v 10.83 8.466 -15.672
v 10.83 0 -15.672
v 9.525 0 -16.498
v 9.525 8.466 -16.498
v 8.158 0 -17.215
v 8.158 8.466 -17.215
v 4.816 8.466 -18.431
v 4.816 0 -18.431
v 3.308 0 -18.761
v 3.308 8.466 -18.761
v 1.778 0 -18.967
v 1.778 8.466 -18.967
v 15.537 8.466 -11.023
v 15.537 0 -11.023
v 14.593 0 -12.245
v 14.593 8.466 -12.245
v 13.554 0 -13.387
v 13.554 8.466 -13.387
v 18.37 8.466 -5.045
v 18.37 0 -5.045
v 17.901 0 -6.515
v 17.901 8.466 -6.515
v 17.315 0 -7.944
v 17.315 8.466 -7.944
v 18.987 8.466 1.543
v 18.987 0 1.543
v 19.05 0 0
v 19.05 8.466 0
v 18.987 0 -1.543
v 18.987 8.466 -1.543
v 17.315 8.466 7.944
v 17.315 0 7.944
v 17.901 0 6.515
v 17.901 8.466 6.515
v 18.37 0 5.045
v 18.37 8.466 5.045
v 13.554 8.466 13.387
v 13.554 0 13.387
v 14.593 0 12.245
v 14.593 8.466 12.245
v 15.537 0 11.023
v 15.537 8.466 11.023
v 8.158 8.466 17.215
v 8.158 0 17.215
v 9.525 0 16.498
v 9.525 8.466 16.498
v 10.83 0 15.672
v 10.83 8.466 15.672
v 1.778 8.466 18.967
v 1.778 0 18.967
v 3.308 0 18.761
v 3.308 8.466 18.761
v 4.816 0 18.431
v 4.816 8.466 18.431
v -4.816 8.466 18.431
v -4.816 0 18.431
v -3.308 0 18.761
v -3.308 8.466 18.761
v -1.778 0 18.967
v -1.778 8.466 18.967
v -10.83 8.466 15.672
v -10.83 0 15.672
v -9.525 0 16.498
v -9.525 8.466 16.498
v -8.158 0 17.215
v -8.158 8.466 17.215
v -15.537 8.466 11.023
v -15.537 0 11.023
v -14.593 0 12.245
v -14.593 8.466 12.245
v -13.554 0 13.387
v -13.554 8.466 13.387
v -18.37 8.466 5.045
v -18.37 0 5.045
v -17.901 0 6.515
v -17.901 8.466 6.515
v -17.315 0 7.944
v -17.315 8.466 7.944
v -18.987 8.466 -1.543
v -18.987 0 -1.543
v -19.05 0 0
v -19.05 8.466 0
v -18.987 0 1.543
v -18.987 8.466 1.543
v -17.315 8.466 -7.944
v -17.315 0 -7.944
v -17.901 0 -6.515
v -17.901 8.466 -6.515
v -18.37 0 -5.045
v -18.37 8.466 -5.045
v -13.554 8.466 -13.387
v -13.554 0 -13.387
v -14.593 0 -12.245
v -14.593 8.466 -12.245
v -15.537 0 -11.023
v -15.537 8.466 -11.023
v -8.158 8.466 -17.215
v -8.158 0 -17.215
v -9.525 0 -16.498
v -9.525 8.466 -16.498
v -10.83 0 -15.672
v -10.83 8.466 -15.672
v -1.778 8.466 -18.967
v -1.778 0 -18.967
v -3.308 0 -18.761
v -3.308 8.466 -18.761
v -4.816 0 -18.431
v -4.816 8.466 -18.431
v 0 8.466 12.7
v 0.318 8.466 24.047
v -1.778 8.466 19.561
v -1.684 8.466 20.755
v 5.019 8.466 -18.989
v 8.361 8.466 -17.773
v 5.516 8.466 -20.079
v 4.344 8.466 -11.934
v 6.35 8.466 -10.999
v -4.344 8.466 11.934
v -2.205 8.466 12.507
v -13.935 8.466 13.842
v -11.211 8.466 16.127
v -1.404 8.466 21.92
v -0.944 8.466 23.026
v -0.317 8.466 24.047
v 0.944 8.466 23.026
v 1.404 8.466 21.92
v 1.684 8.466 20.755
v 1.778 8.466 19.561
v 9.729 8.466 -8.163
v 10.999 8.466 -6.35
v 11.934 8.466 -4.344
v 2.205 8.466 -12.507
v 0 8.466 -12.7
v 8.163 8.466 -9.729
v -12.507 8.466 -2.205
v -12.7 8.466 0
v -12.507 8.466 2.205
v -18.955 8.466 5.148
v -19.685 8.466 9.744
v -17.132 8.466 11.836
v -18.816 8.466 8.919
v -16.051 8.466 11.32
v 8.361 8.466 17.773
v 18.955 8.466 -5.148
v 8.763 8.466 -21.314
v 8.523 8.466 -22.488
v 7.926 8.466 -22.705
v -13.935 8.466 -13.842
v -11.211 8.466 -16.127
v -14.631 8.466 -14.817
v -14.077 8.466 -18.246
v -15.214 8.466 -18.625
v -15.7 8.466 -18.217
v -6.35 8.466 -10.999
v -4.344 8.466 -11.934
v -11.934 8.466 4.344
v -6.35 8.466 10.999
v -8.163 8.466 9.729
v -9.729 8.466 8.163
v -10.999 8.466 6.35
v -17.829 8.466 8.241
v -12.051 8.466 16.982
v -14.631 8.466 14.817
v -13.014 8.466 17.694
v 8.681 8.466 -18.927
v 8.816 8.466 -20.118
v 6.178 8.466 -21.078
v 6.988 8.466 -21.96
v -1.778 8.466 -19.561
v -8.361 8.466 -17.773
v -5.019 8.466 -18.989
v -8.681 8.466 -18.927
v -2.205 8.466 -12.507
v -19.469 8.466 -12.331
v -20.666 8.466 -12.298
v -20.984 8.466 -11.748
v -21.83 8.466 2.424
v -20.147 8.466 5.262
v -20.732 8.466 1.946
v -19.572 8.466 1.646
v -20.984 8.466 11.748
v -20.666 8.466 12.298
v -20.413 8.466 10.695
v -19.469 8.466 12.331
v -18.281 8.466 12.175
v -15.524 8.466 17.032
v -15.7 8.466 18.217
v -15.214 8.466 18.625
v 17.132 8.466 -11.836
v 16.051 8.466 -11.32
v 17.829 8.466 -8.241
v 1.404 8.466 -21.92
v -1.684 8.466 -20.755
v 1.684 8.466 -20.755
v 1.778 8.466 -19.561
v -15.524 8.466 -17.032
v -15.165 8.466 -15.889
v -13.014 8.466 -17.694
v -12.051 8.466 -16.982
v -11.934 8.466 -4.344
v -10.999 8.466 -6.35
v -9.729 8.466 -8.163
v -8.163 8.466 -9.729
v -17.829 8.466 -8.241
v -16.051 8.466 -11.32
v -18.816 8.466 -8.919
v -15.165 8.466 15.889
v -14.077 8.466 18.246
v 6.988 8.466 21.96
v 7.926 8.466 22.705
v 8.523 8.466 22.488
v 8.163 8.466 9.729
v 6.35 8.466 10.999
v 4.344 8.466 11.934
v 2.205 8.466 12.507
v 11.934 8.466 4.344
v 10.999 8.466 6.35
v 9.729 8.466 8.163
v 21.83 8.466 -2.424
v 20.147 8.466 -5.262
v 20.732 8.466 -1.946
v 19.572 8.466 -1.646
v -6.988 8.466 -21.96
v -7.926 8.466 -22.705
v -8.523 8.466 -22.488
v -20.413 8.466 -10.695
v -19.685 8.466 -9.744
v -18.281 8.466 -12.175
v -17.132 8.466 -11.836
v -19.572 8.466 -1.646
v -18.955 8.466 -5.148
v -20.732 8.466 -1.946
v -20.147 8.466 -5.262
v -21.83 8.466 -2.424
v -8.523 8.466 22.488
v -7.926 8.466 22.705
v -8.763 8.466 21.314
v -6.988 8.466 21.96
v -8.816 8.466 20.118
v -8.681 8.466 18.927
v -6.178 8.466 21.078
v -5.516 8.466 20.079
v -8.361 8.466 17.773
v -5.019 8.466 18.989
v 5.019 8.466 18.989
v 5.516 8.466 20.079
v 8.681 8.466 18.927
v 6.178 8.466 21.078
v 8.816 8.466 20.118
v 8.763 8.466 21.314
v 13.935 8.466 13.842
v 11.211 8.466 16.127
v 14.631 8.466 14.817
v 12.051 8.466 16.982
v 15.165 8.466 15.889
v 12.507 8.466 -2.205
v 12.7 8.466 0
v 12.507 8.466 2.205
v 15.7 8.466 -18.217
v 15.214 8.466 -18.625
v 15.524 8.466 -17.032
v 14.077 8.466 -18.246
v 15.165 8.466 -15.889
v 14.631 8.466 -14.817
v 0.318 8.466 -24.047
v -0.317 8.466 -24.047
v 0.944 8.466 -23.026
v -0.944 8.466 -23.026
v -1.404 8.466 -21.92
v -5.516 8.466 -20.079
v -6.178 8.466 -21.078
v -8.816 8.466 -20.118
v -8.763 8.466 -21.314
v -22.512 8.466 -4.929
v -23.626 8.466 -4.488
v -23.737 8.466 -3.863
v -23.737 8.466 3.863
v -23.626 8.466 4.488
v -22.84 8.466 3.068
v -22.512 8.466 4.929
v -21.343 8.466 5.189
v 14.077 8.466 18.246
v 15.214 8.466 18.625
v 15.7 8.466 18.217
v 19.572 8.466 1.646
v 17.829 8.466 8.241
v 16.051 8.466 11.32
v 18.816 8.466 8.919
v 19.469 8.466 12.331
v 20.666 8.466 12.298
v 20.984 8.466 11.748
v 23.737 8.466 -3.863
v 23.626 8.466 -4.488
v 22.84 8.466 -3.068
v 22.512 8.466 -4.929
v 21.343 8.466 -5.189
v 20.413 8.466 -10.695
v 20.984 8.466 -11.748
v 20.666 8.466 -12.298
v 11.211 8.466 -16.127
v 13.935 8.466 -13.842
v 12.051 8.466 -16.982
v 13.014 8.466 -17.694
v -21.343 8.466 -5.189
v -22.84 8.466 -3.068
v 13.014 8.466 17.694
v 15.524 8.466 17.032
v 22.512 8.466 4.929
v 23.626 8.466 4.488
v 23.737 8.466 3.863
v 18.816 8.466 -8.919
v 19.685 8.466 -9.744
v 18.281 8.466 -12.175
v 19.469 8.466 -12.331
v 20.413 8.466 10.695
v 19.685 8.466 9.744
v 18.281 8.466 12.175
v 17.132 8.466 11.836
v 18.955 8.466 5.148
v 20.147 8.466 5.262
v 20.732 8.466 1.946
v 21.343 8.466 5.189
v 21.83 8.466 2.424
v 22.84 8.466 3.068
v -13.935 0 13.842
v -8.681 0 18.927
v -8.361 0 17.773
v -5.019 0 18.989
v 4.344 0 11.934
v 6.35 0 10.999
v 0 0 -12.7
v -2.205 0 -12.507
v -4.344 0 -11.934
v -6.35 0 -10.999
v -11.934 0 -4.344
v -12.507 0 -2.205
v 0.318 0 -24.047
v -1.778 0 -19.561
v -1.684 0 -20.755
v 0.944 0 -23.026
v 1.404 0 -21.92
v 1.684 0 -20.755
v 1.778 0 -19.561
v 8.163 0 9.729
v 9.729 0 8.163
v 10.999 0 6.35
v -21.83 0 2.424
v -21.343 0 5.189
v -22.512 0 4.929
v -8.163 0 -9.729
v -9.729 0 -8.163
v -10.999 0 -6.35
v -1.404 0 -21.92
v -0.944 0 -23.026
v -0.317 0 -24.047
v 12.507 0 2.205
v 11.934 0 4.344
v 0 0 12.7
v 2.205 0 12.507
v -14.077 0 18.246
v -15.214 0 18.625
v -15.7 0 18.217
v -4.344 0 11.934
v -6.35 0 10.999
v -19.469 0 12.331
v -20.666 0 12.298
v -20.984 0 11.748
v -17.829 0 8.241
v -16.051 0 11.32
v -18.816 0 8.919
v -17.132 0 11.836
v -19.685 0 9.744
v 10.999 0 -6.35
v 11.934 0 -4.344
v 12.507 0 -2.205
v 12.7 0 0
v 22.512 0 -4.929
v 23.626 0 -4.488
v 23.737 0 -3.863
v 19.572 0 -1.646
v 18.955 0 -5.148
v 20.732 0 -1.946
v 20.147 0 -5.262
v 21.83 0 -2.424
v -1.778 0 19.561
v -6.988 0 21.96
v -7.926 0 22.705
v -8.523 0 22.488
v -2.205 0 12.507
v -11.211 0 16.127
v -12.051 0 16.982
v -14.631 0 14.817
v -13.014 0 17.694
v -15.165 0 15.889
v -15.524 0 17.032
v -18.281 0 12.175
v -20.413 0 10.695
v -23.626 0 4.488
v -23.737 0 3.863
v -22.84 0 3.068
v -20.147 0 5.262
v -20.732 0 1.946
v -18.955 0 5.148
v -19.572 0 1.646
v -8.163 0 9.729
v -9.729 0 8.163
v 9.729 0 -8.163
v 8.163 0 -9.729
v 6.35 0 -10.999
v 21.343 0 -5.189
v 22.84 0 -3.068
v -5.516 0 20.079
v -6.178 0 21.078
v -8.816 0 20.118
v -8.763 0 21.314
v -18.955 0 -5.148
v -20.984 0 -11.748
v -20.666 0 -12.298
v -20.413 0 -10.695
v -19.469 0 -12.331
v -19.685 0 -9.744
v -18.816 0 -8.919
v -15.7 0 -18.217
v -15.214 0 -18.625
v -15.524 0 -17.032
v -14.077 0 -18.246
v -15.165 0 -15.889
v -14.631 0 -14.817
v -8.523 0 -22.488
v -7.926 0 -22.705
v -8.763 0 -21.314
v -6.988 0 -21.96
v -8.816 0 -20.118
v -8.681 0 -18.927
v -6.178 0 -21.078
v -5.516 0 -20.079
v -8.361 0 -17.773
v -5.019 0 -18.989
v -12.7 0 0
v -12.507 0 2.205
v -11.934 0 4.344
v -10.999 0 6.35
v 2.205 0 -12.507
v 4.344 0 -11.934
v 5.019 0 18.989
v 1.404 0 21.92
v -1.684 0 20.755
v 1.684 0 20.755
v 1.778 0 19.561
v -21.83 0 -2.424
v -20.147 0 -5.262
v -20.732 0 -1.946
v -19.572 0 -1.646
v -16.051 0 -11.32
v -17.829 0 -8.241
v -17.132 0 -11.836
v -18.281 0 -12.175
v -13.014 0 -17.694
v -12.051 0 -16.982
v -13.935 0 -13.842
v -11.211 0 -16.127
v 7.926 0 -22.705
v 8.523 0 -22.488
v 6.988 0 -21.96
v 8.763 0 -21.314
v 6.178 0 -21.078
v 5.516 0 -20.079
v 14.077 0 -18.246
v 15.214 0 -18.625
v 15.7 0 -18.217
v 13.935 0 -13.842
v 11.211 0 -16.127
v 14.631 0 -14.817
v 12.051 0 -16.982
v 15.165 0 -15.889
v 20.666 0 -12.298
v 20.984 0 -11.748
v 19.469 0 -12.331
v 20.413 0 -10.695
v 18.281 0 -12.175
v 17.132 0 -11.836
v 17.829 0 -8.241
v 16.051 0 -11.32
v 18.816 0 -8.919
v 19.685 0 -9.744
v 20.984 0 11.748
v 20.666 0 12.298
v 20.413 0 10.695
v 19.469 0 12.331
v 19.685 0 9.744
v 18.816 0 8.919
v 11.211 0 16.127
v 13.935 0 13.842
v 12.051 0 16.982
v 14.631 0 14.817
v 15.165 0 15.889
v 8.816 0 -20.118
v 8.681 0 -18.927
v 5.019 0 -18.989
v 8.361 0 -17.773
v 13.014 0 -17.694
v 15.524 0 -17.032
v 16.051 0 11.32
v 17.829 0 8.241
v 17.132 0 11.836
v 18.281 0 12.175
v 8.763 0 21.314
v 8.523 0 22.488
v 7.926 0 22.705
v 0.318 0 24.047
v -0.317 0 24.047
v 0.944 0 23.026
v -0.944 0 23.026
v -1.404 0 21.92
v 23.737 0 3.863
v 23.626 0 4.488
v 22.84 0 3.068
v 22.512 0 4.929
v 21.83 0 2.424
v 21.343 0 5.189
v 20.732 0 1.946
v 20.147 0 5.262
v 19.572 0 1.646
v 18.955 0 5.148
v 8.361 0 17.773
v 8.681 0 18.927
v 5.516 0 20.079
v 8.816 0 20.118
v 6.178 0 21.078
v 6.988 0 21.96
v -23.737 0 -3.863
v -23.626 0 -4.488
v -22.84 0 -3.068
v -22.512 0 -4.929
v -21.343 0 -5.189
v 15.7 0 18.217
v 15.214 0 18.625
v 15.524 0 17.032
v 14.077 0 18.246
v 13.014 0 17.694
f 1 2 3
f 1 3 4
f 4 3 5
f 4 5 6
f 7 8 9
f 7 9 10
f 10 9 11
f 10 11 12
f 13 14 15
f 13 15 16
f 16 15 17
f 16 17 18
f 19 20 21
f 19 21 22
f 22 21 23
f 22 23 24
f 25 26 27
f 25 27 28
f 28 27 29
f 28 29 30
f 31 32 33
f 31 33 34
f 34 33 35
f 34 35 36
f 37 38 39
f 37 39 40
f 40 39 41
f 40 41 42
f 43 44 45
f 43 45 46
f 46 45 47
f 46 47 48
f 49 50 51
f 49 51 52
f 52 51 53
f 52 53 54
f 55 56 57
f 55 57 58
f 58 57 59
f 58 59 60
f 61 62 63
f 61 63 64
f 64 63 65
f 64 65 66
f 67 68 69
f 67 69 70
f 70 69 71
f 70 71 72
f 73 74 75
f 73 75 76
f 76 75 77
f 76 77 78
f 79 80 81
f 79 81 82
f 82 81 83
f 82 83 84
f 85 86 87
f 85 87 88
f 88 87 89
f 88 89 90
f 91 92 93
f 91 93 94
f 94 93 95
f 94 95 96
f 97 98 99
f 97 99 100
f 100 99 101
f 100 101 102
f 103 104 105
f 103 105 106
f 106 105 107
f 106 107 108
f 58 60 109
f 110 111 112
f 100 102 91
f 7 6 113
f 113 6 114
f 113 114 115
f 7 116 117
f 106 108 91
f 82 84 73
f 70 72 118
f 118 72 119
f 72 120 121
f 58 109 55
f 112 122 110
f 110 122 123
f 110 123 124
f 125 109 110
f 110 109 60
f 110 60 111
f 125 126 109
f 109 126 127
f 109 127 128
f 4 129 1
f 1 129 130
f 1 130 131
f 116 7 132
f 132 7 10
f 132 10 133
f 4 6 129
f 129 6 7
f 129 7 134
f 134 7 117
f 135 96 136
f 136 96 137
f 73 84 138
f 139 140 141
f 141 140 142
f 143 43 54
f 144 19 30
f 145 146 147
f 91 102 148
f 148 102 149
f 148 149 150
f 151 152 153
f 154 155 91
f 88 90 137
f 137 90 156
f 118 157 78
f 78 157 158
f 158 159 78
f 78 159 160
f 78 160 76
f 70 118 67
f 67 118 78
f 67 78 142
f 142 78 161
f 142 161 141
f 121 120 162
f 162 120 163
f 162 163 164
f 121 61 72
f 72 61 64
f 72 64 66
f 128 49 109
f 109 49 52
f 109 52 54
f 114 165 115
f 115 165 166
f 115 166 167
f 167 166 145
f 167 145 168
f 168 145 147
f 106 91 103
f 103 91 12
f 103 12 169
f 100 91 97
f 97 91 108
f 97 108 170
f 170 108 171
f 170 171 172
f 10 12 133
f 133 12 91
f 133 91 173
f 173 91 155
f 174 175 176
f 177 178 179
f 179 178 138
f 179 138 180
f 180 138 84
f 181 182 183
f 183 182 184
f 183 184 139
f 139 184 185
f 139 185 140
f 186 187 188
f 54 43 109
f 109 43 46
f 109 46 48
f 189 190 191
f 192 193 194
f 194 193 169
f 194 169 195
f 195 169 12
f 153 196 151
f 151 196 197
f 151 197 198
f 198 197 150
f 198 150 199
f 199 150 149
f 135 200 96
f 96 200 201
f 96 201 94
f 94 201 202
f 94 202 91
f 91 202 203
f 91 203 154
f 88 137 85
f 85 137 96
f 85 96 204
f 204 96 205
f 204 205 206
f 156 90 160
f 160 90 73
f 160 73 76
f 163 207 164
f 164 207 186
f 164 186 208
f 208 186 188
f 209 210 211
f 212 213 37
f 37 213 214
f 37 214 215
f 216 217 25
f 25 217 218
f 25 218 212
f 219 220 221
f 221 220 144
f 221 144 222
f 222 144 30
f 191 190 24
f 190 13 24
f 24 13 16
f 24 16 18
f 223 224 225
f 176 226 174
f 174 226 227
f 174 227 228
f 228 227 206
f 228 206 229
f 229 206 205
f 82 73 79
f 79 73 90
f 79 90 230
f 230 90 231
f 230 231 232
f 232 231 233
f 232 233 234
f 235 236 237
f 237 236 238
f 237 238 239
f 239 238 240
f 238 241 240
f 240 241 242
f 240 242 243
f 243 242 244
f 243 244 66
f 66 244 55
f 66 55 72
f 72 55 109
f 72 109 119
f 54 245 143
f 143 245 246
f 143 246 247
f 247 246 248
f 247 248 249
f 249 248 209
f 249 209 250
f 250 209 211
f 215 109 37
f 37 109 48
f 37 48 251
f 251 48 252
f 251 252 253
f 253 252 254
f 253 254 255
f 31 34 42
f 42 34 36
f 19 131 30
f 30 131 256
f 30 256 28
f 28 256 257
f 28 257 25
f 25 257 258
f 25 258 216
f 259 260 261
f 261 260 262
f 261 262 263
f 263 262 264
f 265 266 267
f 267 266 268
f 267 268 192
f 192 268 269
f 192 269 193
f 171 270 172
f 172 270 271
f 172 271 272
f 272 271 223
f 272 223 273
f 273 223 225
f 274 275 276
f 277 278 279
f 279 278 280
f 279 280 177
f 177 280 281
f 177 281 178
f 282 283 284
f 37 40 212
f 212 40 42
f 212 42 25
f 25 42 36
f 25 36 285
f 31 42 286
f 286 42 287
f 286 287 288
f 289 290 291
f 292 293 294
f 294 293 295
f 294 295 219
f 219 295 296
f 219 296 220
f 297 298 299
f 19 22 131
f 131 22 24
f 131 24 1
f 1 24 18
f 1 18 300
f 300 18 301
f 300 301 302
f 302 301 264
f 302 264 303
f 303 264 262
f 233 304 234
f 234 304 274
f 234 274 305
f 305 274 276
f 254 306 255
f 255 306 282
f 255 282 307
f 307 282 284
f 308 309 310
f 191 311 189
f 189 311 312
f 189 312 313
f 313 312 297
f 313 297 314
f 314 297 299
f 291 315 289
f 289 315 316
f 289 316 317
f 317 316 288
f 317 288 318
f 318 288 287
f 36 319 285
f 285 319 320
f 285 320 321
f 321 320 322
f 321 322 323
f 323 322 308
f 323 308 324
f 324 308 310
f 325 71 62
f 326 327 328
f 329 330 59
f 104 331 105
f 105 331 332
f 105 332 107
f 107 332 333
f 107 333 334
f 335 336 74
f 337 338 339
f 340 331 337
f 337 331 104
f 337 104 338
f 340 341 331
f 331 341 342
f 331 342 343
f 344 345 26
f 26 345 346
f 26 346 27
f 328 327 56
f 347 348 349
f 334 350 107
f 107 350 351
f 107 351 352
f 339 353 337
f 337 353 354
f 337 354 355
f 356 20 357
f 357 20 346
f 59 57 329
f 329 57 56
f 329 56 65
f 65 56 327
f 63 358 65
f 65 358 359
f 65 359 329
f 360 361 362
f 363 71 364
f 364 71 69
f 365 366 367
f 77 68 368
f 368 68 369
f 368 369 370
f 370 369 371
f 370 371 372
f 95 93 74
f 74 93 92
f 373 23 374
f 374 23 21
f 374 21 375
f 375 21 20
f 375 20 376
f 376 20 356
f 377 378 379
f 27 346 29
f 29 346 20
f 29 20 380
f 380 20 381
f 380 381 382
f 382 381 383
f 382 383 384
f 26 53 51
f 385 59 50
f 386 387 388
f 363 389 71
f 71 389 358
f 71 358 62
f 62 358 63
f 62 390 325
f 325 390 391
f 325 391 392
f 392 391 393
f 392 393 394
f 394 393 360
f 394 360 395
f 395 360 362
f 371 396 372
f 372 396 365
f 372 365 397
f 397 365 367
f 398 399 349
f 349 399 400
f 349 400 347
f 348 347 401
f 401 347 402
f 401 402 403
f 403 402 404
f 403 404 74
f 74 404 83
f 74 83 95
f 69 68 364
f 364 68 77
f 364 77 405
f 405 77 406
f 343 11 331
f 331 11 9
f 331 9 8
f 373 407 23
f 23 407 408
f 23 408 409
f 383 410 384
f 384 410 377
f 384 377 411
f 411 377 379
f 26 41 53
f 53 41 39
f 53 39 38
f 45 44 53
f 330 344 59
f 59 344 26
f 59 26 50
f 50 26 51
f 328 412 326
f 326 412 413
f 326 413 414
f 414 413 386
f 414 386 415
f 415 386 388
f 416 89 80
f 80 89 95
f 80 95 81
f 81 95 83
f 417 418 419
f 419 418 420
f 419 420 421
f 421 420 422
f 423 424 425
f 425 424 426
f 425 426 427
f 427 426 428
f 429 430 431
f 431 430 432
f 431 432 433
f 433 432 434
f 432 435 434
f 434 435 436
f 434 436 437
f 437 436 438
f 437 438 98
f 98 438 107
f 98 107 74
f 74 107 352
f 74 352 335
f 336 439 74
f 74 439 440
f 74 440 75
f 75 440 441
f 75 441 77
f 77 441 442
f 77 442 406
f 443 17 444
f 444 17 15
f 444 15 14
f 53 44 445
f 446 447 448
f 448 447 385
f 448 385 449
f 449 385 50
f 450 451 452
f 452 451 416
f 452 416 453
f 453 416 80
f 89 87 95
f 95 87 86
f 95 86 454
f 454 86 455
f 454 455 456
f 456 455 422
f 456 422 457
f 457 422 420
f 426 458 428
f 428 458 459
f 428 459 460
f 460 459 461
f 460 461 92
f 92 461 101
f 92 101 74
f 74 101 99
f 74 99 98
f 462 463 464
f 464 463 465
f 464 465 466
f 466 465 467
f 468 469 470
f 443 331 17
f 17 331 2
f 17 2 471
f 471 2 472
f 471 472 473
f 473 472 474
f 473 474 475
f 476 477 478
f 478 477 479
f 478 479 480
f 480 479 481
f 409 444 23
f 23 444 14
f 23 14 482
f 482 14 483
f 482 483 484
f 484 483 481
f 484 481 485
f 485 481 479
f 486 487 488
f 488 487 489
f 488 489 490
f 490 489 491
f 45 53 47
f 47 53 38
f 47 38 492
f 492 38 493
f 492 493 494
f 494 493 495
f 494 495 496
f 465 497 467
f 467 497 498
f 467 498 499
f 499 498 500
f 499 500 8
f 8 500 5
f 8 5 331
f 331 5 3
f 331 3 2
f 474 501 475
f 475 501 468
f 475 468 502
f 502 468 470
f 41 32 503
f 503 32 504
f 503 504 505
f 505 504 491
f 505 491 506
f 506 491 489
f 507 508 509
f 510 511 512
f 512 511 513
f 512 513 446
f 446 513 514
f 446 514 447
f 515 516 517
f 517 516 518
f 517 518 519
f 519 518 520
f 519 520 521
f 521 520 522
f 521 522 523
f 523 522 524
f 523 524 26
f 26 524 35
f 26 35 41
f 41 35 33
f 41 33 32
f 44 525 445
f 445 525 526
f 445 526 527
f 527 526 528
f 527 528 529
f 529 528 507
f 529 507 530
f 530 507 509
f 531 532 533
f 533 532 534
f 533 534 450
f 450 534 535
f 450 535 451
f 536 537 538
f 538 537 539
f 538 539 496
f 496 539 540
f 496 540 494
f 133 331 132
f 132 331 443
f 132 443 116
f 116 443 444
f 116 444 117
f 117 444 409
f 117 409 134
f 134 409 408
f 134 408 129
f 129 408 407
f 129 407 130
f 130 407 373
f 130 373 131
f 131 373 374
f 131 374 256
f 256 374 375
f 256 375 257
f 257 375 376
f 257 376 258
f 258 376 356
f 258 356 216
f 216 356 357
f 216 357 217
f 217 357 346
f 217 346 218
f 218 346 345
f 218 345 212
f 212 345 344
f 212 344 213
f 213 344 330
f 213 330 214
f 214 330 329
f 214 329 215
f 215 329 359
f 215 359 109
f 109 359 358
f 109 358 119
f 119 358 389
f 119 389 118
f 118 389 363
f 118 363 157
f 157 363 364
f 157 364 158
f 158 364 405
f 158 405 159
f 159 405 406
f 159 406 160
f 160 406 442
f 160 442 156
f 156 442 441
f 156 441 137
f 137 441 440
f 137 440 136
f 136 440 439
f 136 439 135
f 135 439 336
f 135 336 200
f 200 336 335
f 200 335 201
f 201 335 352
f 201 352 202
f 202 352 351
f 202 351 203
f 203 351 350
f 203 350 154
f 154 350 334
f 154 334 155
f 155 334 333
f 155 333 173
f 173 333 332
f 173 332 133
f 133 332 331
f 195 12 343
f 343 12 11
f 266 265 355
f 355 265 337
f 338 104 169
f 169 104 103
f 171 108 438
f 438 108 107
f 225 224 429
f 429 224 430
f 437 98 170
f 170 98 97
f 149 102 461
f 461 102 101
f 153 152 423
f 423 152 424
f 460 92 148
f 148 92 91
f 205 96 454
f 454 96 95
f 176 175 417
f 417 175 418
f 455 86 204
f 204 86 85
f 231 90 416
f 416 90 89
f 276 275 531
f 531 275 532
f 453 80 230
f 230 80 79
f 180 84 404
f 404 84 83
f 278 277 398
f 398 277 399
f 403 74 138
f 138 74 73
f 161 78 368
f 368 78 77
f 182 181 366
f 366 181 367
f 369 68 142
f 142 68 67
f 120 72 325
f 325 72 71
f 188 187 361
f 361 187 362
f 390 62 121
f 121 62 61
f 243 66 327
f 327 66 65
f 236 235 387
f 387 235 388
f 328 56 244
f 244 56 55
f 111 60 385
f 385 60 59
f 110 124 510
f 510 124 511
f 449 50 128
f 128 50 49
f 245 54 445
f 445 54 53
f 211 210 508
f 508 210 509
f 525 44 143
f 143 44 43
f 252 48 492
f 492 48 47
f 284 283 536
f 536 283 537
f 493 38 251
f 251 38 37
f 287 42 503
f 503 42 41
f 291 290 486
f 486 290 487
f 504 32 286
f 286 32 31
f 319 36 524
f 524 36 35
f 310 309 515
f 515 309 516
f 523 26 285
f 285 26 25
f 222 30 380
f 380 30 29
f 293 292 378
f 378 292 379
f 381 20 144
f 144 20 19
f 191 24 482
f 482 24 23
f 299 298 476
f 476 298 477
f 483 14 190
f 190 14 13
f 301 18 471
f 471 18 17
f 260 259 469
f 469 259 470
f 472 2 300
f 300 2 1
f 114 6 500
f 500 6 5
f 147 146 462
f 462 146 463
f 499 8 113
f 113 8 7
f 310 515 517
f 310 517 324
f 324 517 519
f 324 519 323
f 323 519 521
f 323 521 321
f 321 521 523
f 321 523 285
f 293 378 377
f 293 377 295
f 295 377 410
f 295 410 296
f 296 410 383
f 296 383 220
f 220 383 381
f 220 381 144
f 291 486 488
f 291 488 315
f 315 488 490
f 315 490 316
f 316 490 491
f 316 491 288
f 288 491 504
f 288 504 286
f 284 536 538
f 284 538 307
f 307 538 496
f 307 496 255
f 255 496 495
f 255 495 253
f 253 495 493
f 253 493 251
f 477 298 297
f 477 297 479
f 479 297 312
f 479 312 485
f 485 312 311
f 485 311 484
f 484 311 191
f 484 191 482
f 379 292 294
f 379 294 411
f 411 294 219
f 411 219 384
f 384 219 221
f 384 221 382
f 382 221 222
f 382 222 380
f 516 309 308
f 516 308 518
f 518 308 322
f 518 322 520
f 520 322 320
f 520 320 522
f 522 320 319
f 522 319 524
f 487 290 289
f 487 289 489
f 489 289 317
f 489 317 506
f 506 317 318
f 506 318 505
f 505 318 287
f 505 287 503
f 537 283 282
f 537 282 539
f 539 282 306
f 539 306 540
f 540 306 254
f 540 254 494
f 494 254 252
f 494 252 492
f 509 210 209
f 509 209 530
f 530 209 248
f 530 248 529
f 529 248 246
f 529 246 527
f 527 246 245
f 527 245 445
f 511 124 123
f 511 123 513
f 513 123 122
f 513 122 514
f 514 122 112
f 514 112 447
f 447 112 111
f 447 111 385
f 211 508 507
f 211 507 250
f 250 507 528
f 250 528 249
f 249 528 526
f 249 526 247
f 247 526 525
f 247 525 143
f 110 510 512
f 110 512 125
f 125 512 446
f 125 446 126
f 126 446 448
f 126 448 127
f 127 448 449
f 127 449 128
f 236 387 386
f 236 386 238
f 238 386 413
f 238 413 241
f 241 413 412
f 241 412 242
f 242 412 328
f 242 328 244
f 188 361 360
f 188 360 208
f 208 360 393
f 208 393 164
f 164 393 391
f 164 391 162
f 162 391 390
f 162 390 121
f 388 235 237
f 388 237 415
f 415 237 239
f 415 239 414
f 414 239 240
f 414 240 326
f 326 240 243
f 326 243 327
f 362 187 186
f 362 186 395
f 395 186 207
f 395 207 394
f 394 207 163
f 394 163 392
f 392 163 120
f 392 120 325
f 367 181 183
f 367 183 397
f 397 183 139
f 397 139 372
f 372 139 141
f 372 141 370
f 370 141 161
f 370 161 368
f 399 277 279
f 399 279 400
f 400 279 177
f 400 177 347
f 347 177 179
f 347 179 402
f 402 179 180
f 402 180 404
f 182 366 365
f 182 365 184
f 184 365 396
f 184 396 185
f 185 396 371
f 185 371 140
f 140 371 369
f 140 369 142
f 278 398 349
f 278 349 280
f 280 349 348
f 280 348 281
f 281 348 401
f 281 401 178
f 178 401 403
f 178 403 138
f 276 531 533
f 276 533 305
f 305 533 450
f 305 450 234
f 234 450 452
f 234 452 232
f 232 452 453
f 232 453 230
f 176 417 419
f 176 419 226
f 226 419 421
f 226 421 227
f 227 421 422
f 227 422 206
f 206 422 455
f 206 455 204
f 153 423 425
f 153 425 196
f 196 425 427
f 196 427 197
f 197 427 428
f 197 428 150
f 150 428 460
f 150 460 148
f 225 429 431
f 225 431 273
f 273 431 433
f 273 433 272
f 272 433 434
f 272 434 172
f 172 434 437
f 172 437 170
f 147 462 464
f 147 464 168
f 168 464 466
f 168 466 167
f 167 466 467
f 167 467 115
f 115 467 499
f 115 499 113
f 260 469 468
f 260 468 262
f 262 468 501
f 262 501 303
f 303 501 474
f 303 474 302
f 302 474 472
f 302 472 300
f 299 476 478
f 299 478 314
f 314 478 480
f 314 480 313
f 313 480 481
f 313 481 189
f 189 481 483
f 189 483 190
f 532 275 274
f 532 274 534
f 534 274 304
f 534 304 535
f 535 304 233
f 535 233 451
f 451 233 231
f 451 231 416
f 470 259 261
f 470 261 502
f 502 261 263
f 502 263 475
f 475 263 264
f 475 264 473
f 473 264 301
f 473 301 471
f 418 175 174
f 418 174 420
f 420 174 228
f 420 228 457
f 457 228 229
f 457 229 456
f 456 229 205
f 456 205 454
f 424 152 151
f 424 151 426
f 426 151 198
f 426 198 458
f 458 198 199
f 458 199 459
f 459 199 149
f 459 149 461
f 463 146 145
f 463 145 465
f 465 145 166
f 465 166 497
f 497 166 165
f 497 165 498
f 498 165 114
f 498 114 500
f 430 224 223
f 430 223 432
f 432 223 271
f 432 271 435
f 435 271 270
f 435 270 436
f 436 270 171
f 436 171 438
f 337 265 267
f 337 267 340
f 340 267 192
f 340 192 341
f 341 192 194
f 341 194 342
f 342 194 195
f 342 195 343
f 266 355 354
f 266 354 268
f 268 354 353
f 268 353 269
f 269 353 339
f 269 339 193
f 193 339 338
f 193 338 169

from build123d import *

# Parameters (mm, degrees)
SKETCH1_R           = 19.05
SKETCH1_R_2         = 12.7
BOSS_EXTRUDE1_DEPTH = 8.46582
BOSS_EXTRUDE2_DEPTH = 8.46582
CIRPATTERN1_COUNT   = 18
FILLET2_R           = 7.62


with BuildPart() as part:
    # Sketch1 → Boss-Extrude1 (new body)
    with BuildSketch(Plane(origin=(0, 0, 0), x_dir=(1, 0, 0), z_dir=(0, 1, 0))):
        with Locations(Location((0, 0, 0), (0, 0, 270))):
            Circle(SKETCH1_R)
        with Locations(Location((0, 0, 0), (0, 0, 270))):
            Circle(SKETCH1_R_2, mode=Mode.SUBTRACT)
    extrude(amount=BOSS_EXTRUDE1_DEPTH)

    # Sketch2 → Boss-Extrude2 (add)
    with BuildSketch(Plane(origin=(0, 0, 0), x_dir=(1, 0, 0), z_dir=(0, 1, 0))):
        with BuildLine():
            Line((-1.778, 18.966845178), (-1.778, 22.141845178))
            Line((-1.778, 22.141845178), (-0.3175, 24.046845178))
            Line((-0.3175, 24.046845178), (0.3175, 24.046845178))
            Line((0.3175, 24.046845178), (1.778, 22.141845178))
            Line((1.778, 22.141845178), (1.778, 18.966845178))
            ThreePointArc((1.778, 18.966845178), (0, 19.05), (-1.778, 18.966845178))
        make_face()
    boss_extrude2 = extrude(amount=BOSS_EXTRUDE2_DEPTH)

    # CirPattern1: Boss-Extrude2 ×18 about axis
    cirpattern1_axis = Axis((0, 0, 0), (0, 1, 0))
    for i in range(1, CIRPATTERN1_COUNT):
        add(boss_extrude2.rotate(cirpattern1_axis, i * 360 / CIRPATTERN1_COUNT))

    # Fillet2
    # the kernel refuses this fillet: 7.62 mm, written as the material it takes off along each edge
    with BuildSketch(Plane(origin=(1.778, -6.452712813, -22.141845178), x_dir=(0, 0, 1), z_dir=(0, 1, 0)), Plane(origin=(20.064400411, -6.452712813, -9.531129421), x_dir=(-0.8660254037844388, 0, 0.49999999999999956), z_dir=(0, 1, 0)), Plane(origin=(22.114207257, -6.452712813, -2.09390288), x_dir=(-0.9848077530122081, 0, 0.17364817766693005), z_dir=(0, 1, 0)), Plane(origin=(21.496714337, -6.452712813, 5.59587925), x_dir=(-0.9848077530122081, 0, -0.17364817766692997), z_dir=(0, 1, 0)), Plane(origin=(18.286400411, -6.452712813, 12.610715757), x_dir=(-0.8660254037844383, 0, -0.5000000000000006), z_dir=(0, 1, 0)), Plane(origin=(12.870476716, -6.452712813, 18.104513829), x_dir=(-0.6427876096865391, 0, -0.7660444431189781), z_dir=(0, 1, 0)), Plane(origin=(5.902183581, -6.452712813, 21.414640339), x_dir=(-0.34202014332566927, 0, -0.9396926207859082), z_dir=(0, 1, 0)), Plane(origin=(-1.778, -6.452712813, 22.141845178), x_dir=(0, 0, -1), z_dir=(0, 1, 0)), Plane(origin=(-9.243730541, -6.452712813, 20.198416709), x_dir=(0.34202014332566927, 0, -0.9396926207859082), z_dir=(0, 1, 0)), Plane(origin=(-15.594530756, -6.452712813, 15.818761089), x_dir=(0.6427876096865394, 0, -0.7660444431189781), z_dir=(0, 1, 0)), Plane(origin=(-20.064400411, -6.452712813, 9.531129421), x_dir=(0.8660254037844388, 0, -0.49999999999999956), z_dir=(0, 1, 0)), Plane(origin=(-22.114207257, -6.452712813, 2.09390288), x_dir=(0.984807753012208, 0, -0.17364817766693053), z_dir=(0, 1, 0)), Plane(origin=(-21.496714337, -6.452712813, -5.59587925), x_dir=(0.9848077530122081, 0, 0.17364817766693055), z_dir=(0, 1, 0)), Plane(origin=(15.594530756, -6.452712813, -15.818761089), x_dir=(-0.6427876096865398, 0, 0.7660444431189776), z_dir=(0, 1, 0)), Plane(origin=(-18.286400411, -6.452712813, -12.610715757), x_dir=(0.8660254037844386, 0, 0.5000000000000001), z_dir=(0, 1, 0)), Plane(origin=(-12.870476716, -6.452712813, -18.104513829), x_dir=(0.642787609686539, 0, 0.7660444431189781), z_dir=(0, 1, 0)), Plane(origin=(9.243730541, -6.452712813, -20.198416709), x_dir=(-0.3420201433256689, 0, 0.9396926207859084), z_dir=(0, 1, 0)), Plane(origin=(-5.902183581, -6.452712813, -21.414640339), x_dir=(0.3420201433256684, 0, 0.9396926207859084), z_dir=(0, 1, 0))) as fillet2_piece_1:
        with BuildLine():
            CenterArc((2.581085125, -7.62), FILLET2_R, 90, 36.06658826)
            Line((-1.905, -1.4605), (-1.994721703, -1.33731))
            ThreePointArc((-1.994721703, -1.33731), (-1.045224967, -0.609304391), (-0.092724967, 0.120945609))
            Line((-0.092724967, 0.120945609), (0, 0.1524))
            Line((0, 0.1524), (2.581085125, 0.1524))
            Line((2.581085125, 0.1524), (2.581085125, 0))
        make_face()
    extrude(amount=21.371245626, mode=Mode.SUBTRACT)
    with BuildSketch(Plane(origin=(-1.778, -6.452712813, -22.141845178), x_dir=(0.6084315436571524, 0, -0.7936063612919032), z_dir=(0, 1, 0)), Plane(origin=(22.114207257, -6.452712813, 2.09390288), x_dir=(0.6758966686489332, 0, 0.7369963997939708), z_dir=(0, 1, 0)), Plane(origin=(21.496714337, -6.452712813, -5.59587925), x_dir=(0.8872027262312159, 0, 0.4613798029475262), z_dir=(0, 1, 0)), Plane(origin=(20.064400411, -6.452712813, 9.531129421), x_dir=(0.38306749765514664, 0, 0.9237203539168248), z_dir=(0, 1, 0)), Plane(origin=(15.594530756, -6.452712813, 15.818761089), x_dir=(0.04403473296999355, 0, 0.9990300006968066), z_dir=(0, 1, 0)), Plane(origin=(9.243730541, -6.452712813, 20.198416709), x_dir=(-0.30030927039478544, 0, 0.9538418852802342), z_dir=(0, 1, 0)), Plane(origin=(1.778, -6.452712813, 22.141845178), x_dir=(-0.6084315436571494, 0, 0.7936063612919054), z_dir=(0, 1, 0)), Plane(origin=(-5.902183581, -6.452712813, 21.414640339), x_dir=(-0.8431679932612217, 0, 0.5376501977492841), z_dir=(0, 1, 0)), Plane(origin=(-12.870476716, -6.452712813, 18.104513829), x_dir=(-0.9762059390437181, 0, 0.21684548548626165), z_dir=(0, 1, 0)), Plane(origin=(-18.286400411, -6.452712813, 12.610715757), x_dir=(-0.9914990413122959, 0, -0.1301139926249219), z_dir=(0, 1, 0)), Plane(origin=(-21.496714337, -6.452712813, 5.59587925), x_dir=(-0.8872027262312162, 0, -0.4613798029475256), z_dir=(0, 1, 0)), Plane(origin=(-22.114207257, -6.452712813, -2.09390288), x_dir=(-0.675896668648932, 0, -0.7369963997939716), z_dir=(0, 1, 0)), Plane(origin=(-20.064400411, -6.452712813, -9.531129421), x_dir=(-0.3830674976551464, 0, -0.923720353916825), z_dir=(0, 1, 0)), Plane(origin=(-15.594530756, -6.452712813, -15.818761089), x_dir=(-0.04403473296998761, 0, -0.9990300006968068), z_dir=(0, 1, 0)), Plane(origin=(12.870476716, -6.452712813, -18.104513829), x_dir=(0.9762059390437176, 0, -0.21684548548626464), z_dir=(0, 1, 0)), Plane(origin=(18.286400411, -6.452712813, -12.610715757), x_dir=(0.9914990413122965, 0, 0.13011399262491774), z_dir=(0, 1, 0))) as fillet2_piece_2:
        with BuildLine():
            CenterArc((2.587882788, -7.61769408), FILLET2_R, 91.409591302, 36.06658826)
            Line((-2.048365574, -1.570413607), (-2.141090542, -1.449467998))
            Line((-2.141090542, -1.449467998), (-0.092724967, 0.120945609))
            Line((-0.092724967, 0.120945609), (0, 0.1524))
            ThreePointArc((0, 0.1524), (1.200217194, 0.1524), (2.39668542, 0.152353882))
            Line((2.39668542, 0.152353882), (2.400434388, 0))
        make_face()
    extrude(amount=21.371245626, mode=Mode.SUBTRACT)
    with BuildSketch(Plane(origin=(-9.243730541, -6.452712813, -20.198416709), x_dir=(0.34202014332566855, 0, 0.9396926207859084), z_dir=(0, 1, 0)), Plane(origin=(5.902183581, -6.452712813, -21.414640339), x_dir=(-0.34202014332566877, 0, 0.9396926207859084), z_dir=(0, 1, 0))) as fillet2_piece_3:
        with BuildLine():
            CenterArc((2.581085125, 7.62), FILLET2_R, 233.93341174, 36.06658826)
            Line((-1.905, 1.4605), (-1.994721703, 1.33731))
            ThreePointArc((-1.994721703, 1.33731), (-1.045224967, 0.609304391), (-0.092724967, -0.120945609))
            Line((-0.092724967, -0.120945609), (0, -0.1524))
            Line((0, -0.1524), (2.581085125, -0.1524))
            Line((2.581085125, -0.1524), (2.581085125, 0))
        make_face()
    extrude(amount=21.371245626, mode=Mode.SUBTRACT)


solid = part.part
